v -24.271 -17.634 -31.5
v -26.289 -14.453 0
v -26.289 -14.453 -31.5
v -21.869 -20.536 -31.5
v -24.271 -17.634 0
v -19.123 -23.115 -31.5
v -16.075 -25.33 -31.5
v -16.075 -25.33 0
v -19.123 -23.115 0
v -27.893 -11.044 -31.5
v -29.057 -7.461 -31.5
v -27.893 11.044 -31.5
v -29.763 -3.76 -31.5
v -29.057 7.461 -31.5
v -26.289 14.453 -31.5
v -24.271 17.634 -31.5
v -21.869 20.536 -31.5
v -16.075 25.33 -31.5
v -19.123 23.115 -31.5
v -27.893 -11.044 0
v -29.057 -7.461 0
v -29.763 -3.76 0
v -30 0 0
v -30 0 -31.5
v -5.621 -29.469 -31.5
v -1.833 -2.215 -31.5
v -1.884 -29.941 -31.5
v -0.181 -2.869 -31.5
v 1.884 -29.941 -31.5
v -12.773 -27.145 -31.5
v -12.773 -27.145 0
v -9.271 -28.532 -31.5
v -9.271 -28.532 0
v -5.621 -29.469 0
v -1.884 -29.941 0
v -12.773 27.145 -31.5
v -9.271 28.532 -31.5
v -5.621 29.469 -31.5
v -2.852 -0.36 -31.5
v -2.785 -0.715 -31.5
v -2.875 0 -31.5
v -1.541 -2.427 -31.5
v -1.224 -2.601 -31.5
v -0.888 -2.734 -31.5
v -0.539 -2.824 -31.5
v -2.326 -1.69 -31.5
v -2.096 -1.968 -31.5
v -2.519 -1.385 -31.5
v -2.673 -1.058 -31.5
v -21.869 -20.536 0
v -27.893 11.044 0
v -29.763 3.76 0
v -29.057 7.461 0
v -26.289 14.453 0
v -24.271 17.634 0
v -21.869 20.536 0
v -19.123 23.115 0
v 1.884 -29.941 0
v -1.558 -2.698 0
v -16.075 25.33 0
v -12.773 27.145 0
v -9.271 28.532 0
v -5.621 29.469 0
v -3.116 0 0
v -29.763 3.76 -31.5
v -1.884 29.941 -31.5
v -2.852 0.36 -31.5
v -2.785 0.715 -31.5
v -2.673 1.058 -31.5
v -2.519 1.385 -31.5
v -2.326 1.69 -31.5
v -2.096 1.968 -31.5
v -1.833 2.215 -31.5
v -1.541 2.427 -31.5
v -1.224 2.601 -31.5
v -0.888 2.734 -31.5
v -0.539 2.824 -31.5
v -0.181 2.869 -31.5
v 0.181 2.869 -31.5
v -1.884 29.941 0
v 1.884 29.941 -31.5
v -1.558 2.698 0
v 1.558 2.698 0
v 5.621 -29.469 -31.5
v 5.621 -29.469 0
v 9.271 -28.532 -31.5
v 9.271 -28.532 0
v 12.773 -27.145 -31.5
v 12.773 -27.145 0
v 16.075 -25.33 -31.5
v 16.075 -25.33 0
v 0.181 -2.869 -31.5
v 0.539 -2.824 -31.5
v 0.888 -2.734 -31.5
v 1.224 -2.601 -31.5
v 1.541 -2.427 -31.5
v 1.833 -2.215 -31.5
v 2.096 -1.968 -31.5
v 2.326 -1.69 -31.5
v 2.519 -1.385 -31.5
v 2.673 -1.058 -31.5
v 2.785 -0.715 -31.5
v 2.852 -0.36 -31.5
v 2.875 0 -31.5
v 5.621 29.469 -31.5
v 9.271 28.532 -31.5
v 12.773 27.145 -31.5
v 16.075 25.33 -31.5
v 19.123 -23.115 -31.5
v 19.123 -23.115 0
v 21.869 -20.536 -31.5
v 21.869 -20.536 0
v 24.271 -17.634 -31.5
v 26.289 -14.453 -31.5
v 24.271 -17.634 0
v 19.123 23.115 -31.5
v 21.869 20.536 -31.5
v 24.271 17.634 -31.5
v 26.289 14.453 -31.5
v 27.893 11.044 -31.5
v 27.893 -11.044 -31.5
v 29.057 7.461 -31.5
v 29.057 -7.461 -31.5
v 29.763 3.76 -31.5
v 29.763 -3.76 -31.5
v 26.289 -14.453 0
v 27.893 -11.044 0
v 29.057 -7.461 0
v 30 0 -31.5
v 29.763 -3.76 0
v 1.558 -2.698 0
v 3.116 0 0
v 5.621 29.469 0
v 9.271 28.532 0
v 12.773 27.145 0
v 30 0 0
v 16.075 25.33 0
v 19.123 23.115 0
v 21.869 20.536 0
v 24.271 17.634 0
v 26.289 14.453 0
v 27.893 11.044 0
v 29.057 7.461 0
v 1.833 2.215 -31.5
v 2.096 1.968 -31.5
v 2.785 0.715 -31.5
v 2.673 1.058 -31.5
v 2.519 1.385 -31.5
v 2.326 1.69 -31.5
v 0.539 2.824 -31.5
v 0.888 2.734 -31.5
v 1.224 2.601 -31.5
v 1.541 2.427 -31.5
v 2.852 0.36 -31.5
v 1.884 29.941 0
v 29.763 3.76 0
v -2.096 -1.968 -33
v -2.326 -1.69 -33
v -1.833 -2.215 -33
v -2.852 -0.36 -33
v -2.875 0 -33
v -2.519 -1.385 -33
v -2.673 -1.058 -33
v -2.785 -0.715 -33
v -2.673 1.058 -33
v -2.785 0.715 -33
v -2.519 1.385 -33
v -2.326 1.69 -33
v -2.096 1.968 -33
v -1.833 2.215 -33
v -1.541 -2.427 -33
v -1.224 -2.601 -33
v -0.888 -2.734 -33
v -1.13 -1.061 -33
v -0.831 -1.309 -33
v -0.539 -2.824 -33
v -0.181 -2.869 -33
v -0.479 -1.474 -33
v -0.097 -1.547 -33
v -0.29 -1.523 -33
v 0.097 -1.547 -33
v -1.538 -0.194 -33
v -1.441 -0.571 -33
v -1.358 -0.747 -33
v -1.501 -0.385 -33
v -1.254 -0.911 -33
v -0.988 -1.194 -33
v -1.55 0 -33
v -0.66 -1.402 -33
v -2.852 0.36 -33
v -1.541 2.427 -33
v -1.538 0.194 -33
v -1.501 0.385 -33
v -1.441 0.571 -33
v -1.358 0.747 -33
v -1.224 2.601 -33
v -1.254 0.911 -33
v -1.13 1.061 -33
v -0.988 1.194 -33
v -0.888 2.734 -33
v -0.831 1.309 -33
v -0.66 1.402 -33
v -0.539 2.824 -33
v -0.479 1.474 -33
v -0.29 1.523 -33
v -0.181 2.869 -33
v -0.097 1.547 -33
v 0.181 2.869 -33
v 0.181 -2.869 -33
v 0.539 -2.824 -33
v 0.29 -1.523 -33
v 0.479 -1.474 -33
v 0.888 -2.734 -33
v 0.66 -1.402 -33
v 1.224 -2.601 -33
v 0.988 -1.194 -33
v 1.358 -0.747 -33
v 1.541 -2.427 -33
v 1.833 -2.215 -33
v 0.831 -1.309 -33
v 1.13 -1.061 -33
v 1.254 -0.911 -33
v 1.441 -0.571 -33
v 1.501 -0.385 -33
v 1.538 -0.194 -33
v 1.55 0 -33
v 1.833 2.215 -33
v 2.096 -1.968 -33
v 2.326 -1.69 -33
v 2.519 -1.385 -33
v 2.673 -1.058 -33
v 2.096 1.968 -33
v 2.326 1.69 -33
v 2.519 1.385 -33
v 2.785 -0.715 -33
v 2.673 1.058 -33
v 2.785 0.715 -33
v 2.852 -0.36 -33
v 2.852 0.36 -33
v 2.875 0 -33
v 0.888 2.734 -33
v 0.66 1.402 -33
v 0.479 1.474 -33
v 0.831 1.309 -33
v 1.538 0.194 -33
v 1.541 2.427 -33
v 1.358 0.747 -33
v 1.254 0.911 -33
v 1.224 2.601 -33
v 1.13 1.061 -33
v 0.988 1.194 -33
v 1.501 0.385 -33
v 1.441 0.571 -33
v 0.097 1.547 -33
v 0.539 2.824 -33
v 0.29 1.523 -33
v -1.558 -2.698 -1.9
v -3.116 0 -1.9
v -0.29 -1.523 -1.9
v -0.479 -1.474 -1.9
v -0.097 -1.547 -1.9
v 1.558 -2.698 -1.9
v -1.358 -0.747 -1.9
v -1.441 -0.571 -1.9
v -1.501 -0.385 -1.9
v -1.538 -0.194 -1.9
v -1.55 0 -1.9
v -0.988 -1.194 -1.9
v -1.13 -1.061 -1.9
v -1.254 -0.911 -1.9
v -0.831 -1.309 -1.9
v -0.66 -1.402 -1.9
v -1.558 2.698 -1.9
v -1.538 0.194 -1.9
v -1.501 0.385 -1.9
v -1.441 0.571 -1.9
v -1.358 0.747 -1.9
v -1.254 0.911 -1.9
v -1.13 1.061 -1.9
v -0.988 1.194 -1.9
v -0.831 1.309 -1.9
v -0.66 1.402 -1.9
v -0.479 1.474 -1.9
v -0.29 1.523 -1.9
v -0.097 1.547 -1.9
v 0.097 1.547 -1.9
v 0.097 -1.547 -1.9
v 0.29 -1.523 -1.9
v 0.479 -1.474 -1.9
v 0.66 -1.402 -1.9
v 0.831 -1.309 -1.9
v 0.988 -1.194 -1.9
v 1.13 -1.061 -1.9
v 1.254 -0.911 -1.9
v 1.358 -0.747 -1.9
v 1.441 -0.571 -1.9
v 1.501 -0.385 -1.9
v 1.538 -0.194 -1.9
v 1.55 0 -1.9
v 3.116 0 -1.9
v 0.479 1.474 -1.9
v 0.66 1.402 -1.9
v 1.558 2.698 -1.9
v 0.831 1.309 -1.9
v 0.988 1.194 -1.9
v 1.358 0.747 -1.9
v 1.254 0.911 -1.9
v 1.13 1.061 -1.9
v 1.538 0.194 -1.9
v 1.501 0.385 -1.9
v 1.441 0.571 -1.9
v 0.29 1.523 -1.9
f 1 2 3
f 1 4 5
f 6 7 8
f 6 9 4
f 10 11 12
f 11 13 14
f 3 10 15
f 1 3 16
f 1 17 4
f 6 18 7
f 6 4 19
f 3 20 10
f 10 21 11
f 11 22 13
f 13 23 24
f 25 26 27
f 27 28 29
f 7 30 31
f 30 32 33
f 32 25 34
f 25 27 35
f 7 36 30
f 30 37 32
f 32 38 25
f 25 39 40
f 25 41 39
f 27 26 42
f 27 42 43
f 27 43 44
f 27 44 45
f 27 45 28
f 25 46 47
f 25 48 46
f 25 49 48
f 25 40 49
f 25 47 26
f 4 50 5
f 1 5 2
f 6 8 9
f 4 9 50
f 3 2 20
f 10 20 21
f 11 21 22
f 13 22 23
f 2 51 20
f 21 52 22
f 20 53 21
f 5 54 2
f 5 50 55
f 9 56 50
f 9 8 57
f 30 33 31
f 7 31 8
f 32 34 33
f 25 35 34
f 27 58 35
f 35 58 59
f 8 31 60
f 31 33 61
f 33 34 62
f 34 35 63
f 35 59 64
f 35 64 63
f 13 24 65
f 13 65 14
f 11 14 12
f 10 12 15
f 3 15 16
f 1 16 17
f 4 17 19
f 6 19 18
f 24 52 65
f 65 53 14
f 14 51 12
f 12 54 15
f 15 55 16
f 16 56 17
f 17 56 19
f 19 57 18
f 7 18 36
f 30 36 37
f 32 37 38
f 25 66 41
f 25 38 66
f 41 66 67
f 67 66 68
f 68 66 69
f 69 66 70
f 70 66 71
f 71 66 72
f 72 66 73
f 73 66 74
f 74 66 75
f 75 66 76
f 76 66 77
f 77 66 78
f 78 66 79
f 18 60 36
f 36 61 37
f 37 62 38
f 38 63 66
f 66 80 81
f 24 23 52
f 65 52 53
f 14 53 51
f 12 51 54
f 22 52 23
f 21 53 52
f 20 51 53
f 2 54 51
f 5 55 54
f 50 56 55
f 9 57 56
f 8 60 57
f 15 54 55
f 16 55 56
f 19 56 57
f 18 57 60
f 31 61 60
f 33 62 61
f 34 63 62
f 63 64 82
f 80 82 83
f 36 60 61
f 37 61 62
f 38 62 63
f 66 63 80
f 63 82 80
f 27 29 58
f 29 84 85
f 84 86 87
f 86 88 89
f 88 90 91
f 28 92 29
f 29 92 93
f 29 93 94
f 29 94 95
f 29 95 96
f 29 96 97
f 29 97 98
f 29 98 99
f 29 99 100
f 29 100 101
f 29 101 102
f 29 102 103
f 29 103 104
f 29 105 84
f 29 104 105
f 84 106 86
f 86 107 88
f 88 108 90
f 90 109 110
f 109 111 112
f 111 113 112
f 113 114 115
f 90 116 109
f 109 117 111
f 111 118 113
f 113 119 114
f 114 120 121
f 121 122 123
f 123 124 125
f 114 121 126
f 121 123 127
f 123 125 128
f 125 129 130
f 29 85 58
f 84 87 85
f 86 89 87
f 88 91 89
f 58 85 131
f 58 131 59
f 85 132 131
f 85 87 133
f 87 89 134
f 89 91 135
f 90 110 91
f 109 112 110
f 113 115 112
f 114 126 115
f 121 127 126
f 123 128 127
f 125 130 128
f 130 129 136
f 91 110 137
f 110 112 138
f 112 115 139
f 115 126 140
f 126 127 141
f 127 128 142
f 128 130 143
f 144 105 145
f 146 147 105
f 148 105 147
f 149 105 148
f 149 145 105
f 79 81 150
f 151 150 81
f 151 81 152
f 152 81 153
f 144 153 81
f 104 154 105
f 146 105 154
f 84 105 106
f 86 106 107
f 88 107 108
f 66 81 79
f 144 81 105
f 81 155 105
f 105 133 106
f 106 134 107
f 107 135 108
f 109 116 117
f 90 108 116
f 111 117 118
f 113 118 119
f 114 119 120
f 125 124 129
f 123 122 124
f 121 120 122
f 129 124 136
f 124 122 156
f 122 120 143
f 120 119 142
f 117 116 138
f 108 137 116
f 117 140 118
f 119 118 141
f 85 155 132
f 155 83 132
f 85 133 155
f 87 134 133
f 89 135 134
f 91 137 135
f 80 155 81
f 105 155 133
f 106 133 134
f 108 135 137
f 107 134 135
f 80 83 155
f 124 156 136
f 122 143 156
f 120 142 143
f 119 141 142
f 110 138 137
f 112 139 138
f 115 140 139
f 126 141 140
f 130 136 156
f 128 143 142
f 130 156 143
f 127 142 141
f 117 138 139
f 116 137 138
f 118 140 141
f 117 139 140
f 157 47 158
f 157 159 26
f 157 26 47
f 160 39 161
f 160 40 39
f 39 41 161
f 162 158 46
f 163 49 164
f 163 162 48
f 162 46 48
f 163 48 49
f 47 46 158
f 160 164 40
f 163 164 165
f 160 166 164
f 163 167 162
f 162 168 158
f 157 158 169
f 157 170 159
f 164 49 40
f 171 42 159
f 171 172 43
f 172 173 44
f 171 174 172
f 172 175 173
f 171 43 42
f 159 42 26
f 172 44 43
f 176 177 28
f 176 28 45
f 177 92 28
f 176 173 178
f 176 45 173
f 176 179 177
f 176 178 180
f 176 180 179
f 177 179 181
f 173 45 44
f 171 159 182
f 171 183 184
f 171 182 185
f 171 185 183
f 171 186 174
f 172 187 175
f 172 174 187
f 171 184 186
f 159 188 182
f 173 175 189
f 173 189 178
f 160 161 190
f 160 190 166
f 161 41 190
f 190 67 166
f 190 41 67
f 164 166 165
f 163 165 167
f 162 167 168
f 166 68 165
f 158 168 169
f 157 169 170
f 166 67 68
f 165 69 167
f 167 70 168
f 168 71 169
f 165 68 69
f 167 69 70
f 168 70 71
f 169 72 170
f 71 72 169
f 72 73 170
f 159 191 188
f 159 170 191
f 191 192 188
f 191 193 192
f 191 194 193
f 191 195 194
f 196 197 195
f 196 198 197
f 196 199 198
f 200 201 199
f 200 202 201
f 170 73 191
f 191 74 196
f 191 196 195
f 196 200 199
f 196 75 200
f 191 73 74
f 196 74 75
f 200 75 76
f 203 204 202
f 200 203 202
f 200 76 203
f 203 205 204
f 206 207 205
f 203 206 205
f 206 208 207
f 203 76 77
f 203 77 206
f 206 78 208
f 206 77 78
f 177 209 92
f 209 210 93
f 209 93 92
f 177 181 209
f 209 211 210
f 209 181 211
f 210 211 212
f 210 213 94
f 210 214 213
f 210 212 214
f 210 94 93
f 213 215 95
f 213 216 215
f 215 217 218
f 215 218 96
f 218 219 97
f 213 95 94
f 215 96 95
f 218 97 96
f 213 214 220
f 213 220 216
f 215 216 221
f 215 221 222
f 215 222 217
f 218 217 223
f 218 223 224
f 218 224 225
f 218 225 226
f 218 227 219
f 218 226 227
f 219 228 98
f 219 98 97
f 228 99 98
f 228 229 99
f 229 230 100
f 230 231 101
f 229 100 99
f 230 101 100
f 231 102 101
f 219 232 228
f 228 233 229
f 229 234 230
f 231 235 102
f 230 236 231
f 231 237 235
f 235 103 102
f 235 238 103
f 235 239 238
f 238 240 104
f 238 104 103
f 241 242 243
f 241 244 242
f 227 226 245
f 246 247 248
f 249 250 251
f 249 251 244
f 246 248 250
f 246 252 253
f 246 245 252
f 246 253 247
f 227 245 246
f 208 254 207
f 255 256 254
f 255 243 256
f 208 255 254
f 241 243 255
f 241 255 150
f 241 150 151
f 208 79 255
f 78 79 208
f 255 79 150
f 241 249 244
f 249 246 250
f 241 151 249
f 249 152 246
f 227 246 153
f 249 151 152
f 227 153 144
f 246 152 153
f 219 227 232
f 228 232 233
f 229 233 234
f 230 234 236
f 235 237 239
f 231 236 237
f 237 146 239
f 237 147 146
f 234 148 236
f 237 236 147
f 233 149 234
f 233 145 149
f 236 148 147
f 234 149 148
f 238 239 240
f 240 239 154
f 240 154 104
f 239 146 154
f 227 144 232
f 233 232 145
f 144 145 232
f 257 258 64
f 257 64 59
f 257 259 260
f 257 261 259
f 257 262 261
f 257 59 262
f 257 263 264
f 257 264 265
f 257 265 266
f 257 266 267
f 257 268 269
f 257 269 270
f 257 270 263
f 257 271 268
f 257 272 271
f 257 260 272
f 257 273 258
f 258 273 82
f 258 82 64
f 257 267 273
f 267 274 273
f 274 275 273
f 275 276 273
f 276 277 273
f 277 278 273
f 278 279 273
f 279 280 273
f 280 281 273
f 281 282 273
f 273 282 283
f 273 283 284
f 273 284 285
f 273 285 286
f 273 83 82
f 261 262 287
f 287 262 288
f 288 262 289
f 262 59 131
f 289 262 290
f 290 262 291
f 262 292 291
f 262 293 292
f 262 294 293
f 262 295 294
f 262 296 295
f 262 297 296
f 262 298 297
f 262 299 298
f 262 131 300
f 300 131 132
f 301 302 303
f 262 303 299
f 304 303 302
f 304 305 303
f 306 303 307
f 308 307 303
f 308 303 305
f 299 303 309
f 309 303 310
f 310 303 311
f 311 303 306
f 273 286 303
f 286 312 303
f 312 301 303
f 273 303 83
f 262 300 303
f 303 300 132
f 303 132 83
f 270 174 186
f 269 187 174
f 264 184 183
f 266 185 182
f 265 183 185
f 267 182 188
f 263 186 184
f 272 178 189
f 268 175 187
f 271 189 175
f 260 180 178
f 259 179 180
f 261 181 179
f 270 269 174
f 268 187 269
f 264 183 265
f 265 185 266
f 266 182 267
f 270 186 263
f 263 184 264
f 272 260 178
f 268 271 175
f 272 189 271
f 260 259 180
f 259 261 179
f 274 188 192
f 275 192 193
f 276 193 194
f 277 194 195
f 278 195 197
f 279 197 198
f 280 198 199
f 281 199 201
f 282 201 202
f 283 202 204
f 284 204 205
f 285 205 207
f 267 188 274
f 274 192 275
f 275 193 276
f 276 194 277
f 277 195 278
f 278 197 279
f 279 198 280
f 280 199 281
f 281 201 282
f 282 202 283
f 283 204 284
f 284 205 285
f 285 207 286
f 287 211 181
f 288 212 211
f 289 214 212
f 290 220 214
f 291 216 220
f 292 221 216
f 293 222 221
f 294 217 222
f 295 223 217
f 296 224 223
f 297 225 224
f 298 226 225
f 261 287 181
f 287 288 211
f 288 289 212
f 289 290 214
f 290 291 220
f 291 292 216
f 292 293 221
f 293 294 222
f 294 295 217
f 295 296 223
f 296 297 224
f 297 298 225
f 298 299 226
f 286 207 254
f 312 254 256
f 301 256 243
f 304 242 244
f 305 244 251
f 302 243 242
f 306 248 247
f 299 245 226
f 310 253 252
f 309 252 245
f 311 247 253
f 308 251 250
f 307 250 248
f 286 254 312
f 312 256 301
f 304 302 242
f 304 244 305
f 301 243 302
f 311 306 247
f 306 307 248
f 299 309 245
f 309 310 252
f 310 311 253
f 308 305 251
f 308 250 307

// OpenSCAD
$fn = 50;


difference() {
	union() {
		translate(v = [0, 0, -31.5000000000]) {
			cylinder(h = 31.5000000000, r = 30.0000000000);
		}
		#translate(v = [0, 0, -33.0000000000]) {
			cylinder(h = 33, r = 2.8750000000);
		}
	}
	union() {
		translate(v = [0, 0, 0]) {
			rotate(a = [0, 0, 0]) {
				difference() {
					union() {
						translate(v = [0, 0, -1.9000000000]) {
							linear_extrude(height = 1.9000000000) {
								polygon(points = [[3.1158000000, 0.0000000000], [1.5579000000, 2.6983619531], [-1.5579000000, 2.6983619531], [-3.1158000000, 0.0000000000], [-1.5579000000, -2.6983619531], [1.5579000000, -2.6983619531]]);
							}
						}
					}
					union();
				}
			}
		}
		#translate(v = [0, 0, -100.0000000000]) {
			cylinder(h = 200, r = 1.5500000000);
		}
	}
}
